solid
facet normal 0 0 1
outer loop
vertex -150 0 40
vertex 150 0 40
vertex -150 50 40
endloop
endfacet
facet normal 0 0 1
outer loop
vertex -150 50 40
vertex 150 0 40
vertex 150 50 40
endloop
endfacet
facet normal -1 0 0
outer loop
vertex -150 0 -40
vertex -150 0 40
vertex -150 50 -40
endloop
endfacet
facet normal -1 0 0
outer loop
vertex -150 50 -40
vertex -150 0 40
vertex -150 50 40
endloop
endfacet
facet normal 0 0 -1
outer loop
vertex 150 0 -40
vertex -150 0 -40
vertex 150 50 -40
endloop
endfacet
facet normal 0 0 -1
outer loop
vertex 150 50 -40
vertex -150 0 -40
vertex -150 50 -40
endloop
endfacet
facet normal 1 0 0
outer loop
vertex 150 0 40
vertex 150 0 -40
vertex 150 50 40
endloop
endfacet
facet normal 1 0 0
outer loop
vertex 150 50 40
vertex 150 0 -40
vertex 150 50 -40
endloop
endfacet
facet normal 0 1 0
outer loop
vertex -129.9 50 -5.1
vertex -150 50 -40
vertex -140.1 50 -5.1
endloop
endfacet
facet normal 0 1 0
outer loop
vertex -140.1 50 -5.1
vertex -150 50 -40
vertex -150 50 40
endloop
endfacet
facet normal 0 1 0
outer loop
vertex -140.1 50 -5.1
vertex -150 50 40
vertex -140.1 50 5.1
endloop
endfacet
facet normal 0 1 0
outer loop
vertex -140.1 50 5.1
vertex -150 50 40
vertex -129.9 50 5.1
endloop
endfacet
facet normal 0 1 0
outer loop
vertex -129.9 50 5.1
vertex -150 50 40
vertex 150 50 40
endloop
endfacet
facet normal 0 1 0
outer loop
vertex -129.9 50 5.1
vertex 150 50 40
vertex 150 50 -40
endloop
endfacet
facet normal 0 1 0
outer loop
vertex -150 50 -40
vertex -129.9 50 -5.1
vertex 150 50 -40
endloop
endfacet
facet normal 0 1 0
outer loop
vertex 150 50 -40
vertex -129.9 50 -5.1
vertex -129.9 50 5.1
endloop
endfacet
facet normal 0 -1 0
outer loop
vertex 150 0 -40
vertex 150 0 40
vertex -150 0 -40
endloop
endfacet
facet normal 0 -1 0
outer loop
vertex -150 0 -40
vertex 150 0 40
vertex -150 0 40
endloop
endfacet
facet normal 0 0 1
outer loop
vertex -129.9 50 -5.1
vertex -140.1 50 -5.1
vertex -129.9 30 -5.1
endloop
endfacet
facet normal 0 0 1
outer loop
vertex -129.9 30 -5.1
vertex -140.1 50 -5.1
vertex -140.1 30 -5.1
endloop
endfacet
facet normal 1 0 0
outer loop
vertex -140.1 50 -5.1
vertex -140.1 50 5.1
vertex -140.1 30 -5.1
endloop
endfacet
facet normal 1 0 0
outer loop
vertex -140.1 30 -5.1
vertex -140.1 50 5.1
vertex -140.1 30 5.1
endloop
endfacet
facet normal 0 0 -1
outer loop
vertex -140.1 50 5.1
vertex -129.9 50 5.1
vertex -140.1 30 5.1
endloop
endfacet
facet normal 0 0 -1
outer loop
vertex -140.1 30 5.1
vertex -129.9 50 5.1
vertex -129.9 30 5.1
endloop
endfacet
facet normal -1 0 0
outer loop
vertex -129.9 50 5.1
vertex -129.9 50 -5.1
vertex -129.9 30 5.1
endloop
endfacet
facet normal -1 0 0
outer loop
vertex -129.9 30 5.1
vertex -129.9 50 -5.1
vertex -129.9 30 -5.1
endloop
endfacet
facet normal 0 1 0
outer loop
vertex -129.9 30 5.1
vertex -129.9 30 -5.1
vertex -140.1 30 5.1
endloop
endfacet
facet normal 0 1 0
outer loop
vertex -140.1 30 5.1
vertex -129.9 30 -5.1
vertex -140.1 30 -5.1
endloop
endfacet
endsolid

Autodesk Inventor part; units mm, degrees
ref_plane "YZ Plane" through (0, 0, 0) normal (1, 0, 0) x (0, 1, 0)
ref_plane "XZ Plane" through (0, 0, 0) normal (0, 1, 0) x (-1, 0, 0)
ref_plane "XY Plane" through (0, 0, 0) normal (0, 0, 1) x (1, 0, 0)
sketch "Sketch1" plane through (0, 0, 0) normal (0, 1, 0) x (-1, 0, 0)
  line L0 (150, 40) -> (-150, 40)
  line L1 (-150, 40) -> (-150, -40)
  line L2 (-150, -40) -> (150, -40)
  line L3 (150, -40) -> (150, 40)
  point P0 (0, 0)
  dimension "d0" = 300
  dimension "d1" = 80
  dimension "d2" = 40
  dimension "d3" = 150
extrude "Extrusion1" add sketch "Sketch1" along normal blind 50
sketch "Sketch2" plane through (0, 50, 0) normal (0, 1, 0) x (1, 0, 0)
  line L0 (-140.1, -5.1) -> (-129.9, -5.1)
  line L1 (-129.9, -5.1) -> (-129.9, 5.1)
  line L2 (-129.9, 5.1) -> (-140.1, 5.1)
  line L3 (-140.1, 5.1) -> (-140.1, -5.1)
  line L4 (-150, 40) -> (-150, -40) projected
  line L5 (-150, -40) -> (150, -40) projected
  point P0 (0, 0)
  dimension "d6" = 10.2
  dimension "d7" = 10.2
  dimension "d8" = 9.9
  dimension "d9" = 34.9
extrude "Extrusion2" cut sketch "Sketch2" against normal blind 20
properties part number "basketball post"
